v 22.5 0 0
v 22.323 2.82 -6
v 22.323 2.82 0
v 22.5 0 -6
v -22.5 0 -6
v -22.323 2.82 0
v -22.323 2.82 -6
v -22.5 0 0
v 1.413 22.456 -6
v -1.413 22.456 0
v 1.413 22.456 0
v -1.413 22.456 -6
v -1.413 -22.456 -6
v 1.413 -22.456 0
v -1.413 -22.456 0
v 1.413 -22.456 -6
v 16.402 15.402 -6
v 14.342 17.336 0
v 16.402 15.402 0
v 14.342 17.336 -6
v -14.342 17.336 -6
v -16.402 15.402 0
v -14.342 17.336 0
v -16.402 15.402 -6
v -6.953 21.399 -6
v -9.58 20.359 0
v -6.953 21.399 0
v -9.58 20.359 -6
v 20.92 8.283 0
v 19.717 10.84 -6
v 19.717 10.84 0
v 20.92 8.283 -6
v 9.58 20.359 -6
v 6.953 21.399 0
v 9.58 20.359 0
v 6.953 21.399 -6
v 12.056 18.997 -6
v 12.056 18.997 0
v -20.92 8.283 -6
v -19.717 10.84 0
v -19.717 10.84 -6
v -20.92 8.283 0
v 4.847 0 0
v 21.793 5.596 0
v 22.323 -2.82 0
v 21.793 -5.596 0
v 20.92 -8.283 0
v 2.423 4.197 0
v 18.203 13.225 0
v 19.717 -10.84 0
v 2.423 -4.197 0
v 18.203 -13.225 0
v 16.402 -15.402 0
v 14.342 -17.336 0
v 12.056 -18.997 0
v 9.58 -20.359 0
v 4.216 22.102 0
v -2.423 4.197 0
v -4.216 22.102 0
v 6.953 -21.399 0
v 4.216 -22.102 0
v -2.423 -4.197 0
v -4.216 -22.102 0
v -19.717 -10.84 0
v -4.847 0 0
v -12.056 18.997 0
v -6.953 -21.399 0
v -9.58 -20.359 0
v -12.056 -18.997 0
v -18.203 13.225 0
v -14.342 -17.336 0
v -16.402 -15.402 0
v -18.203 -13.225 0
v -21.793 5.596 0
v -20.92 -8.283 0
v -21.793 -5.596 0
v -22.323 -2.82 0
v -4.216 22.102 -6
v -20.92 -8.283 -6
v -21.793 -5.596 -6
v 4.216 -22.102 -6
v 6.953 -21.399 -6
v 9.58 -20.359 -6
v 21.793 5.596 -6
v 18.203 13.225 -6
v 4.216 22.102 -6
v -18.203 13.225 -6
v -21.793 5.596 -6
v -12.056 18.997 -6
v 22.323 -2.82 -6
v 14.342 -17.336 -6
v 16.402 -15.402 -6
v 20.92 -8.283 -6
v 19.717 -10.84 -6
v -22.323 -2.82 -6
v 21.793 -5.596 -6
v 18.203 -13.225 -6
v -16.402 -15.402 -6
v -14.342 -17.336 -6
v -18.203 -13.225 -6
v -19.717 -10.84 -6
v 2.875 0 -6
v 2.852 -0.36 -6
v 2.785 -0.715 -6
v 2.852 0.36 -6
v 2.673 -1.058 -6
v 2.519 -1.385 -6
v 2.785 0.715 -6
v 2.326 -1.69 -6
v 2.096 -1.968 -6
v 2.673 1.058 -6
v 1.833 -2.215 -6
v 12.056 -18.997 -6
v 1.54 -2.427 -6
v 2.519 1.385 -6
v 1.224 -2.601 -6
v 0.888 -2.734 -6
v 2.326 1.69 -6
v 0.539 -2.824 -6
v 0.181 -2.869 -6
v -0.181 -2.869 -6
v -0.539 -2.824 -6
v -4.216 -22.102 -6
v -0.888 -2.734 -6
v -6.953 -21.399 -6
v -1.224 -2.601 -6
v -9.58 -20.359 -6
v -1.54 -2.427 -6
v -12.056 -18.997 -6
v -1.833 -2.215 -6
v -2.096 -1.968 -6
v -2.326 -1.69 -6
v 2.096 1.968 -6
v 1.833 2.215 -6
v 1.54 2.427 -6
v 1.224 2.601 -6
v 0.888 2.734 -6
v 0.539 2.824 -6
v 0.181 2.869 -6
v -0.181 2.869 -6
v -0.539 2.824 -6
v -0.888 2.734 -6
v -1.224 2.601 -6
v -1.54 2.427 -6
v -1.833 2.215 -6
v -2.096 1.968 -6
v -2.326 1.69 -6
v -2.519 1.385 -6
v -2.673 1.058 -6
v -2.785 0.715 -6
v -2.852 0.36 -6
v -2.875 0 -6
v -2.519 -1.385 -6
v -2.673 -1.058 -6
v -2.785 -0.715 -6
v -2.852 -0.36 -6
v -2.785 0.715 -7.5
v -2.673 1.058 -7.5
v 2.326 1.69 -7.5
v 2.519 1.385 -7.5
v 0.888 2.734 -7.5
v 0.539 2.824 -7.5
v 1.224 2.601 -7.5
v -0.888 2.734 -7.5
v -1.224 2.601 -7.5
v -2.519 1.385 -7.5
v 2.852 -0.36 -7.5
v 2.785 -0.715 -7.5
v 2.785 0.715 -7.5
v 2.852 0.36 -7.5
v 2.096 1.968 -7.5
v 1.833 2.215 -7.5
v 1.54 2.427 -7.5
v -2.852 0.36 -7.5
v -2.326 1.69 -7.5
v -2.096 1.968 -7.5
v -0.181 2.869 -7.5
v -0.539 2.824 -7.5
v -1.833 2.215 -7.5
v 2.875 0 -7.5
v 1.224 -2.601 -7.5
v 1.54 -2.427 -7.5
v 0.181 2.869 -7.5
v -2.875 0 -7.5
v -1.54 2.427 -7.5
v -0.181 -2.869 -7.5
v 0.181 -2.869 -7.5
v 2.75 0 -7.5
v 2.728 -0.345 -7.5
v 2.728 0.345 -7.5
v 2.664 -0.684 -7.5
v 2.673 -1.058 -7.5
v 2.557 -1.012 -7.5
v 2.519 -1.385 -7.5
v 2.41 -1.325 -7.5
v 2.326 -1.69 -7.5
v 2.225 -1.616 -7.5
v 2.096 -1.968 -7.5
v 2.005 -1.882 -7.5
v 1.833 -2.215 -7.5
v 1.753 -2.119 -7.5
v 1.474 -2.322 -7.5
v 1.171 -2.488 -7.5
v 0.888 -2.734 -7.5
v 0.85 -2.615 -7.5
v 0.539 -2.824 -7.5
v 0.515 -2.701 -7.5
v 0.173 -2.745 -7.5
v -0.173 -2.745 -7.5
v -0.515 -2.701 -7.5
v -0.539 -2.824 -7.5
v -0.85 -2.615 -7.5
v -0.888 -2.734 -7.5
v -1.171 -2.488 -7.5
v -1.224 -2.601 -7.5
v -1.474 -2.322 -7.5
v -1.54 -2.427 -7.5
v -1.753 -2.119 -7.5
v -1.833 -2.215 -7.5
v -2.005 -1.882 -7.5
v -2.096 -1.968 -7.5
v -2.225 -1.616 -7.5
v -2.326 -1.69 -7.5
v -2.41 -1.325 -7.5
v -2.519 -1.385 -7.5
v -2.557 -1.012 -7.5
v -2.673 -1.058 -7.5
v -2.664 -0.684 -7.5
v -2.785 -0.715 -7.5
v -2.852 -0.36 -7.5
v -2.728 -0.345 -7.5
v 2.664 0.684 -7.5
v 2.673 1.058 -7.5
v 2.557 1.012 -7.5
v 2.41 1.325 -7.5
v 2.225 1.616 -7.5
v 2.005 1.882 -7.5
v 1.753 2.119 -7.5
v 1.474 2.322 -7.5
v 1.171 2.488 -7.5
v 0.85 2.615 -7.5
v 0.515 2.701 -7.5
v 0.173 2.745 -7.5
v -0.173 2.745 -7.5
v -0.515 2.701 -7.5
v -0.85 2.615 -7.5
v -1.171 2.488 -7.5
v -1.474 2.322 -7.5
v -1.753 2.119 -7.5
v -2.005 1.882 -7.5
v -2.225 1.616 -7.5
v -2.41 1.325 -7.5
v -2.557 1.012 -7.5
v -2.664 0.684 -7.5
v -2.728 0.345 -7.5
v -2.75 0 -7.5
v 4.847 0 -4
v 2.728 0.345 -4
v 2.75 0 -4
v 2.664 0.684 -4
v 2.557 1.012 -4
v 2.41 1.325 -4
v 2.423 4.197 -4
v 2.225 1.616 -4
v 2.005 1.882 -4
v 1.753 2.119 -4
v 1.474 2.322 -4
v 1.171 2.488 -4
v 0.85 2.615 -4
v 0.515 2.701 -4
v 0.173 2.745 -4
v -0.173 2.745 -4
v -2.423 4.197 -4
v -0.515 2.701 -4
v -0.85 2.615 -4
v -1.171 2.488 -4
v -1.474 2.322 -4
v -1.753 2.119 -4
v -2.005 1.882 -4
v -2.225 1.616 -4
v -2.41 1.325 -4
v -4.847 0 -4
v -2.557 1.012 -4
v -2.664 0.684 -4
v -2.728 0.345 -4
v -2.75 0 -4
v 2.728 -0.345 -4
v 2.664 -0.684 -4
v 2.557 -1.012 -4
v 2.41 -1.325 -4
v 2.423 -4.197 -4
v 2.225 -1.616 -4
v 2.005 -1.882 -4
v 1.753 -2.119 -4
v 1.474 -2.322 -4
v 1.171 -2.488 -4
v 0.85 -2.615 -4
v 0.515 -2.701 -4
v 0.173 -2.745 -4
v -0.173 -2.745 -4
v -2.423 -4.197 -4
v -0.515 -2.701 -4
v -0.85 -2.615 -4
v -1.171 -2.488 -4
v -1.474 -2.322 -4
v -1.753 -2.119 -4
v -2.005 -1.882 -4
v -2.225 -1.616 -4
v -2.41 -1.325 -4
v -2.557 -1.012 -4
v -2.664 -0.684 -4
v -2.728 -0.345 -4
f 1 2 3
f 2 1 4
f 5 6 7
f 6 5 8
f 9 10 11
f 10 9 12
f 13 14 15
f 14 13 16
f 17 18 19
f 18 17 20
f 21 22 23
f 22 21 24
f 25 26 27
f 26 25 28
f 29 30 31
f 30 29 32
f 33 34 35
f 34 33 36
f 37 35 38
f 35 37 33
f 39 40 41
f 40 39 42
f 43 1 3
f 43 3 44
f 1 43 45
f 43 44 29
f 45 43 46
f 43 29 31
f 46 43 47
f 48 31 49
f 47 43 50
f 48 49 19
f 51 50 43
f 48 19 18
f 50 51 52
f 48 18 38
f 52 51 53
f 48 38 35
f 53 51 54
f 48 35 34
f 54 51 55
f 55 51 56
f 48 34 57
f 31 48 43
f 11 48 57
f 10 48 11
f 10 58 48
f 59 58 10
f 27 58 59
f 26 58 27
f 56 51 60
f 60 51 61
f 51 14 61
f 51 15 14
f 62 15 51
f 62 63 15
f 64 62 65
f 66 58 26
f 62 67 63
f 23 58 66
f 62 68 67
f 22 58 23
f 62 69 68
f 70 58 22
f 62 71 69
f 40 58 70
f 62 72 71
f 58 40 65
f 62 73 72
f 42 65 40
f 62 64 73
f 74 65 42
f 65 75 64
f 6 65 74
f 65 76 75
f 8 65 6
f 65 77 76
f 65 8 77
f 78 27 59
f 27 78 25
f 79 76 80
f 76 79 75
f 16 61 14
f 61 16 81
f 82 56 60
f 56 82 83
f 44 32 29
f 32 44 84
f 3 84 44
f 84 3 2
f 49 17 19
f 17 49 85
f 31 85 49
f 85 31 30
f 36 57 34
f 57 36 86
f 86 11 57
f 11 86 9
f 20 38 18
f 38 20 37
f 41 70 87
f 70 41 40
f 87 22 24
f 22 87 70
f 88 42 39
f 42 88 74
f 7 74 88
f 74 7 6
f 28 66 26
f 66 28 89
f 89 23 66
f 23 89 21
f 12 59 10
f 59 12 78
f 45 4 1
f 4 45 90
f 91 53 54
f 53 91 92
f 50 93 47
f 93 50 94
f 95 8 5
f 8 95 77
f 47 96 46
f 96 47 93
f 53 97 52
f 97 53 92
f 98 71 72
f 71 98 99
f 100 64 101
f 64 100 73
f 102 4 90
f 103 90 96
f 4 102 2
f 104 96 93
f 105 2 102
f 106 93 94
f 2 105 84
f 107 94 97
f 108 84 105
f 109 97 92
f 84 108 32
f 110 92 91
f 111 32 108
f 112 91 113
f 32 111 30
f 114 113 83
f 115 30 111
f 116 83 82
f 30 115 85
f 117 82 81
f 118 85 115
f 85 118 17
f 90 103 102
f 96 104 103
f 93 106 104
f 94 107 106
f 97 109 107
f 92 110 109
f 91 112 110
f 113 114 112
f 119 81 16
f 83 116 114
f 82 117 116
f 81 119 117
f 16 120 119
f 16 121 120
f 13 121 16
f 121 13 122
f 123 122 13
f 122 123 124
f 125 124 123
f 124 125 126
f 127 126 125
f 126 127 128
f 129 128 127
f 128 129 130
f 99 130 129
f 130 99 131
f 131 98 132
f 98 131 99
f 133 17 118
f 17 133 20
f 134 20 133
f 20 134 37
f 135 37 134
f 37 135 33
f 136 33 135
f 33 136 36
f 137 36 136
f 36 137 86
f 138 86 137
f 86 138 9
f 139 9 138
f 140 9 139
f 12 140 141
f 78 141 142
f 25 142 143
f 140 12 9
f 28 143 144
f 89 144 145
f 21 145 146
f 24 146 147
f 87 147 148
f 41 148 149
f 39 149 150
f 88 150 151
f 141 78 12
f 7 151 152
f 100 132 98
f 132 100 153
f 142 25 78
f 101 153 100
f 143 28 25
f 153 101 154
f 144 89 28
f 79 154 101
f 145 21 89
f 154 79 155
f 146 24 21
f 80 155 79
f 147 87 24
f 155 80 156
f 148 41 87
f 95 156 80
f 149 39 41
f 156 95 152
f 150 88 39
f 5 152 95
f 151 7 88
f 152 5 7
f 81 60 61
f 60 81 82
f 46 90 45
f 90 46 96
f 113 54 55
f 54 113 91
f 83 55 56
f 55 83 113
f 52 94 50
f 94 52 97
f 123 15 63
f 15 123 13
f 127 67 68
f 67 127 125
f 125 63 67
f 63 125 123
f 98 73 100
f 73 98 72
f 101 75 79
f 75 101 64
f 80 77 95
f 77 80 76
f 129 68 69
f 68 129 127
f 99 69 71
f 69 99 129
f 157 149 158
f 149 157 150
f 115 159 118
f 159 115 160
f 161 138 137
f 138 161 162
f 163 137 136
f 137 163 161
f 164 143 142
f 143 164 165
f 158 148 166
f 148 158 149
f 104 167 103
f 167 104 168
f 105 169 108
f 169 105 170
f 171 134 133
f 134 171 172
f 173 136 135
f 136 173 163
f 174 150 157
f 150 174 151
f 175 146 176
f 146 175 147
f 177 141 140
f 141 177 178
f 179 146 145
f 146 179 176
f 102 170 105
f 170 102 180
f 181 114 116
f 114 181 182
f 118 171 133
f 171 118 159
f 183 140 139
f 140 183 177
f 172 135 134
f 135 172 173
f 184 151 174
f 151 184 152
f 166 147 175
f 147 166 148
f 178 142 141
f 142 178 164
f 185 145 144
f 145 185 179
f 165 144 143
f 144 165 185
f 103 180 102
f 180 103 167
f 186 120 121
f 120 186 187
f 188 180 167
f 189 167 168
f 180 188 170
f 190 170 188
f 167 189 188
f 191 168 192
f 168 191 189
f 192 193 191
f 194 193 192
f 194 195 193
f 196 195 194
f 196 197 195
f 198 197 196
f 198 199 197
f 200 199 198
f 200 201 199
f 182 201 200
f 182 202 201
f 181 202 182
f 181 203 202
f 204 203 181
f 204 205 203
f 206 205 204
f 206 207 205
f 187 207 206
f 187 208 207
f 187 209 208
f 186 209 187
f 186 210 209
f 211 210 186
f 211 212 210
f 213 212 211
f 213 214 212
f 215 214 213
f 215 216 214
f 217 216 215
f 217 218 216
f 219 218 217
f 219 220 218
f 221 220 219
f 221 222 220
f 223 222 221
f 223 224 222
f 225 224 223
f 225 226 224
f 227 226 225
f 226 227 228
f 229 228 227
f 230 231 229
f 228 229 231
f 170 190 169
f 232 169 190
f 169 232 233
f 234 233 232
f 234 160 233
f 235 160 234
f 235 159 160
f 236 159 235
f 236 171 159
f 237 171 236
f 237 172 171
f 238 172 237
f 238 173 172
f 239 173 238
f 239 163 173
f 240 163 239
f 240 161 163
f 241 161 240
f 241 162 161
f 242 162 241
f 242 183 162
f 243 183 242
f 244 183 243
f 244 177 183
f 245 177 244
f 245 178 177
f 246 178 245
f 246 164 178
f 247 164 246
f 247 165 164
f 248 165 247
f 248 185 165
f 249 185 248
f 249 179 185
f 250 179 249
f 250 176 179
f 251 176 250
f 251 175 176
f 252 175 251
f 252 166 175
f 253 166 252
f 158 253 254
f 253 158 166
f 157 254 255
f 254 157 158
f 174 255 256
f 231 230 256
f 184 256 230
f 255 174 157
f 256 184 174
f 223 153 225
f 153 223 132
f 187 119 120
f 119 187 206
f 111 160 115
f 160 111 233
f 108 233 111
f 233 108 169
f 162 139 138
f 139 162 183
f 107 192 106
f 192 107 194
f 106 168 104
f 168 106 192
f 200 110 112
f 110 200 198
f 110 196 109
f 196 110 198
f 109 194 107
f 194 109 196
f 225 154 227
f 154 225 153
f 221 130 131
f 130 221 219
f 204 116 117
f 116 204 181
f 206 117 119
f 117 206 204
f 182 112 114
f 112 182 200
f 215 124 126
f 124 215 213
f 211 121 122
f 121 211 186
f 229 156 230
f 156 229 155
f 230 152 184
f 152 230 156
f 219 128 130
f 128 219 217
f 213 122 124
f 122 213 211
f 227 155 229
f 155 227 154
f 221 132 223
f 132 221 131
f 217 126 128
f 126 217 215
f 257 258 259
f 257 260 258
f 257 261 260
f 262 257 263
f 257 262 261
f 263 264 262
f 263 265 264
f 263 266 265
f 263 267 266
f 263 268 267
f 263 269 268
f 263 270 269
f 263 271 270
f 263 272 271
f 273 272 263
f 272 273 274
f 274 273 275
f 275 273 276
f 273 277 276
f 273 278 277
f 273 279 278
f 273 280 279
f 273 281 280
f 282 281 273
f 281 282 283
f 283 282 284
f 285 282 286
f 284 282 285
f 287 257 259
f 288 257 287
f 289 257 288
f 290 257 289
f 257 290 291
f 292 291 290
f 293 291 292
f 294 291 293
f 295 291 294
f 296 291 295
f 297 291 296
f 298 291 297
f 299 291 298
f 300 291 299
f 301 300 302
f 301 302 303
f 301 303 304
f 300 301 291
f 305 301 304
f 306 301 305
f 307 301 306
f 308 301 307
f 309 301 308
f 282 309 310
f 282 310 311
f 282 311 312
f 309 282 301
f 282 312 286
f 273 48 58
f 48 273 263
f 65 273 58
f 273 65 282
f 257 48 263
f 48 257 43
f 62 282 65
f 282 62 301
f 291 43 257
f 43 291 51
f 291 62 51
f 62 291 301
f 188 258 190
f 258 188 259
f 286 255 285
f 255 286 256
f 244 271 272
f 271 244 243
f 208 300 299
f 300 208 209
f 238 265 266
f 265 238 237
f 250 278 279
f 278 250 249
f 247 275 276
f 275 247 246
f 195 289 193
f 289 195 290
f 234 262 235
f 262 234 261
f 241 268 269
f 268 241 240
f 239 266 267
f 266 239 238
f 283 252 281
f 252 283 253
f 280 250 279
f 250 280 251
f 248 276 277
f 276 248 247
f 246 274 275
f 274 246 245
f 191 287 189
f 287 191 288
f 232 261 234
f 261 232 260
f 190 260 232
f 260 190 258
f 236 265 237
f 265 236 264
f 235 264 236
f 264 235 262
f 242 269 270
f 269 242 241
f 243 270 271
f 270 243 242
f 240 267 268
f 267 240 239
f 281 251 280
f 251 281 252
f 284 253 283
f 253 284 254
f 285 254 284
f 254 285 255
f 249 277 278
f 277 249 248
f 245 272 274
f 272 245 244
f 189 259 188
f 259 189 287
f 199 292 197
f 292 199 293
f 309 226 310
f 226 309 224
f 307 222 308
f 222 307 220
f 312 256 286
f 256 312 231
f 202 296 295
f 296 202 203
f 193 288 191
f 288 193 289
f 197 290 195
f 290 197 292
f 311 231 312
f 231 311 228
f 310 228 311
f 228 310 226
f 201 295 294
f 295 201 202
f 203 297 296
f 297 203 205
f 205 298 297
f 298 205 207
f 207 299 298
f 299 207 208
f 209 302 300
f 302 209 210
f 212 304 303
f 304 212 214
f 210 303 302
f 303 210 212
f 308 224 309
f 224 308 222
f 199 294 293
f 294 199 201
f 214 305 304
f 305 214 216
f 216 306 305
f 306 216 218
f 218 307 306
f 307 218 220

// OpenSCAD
$fn = 50;


difference() {
	union() {
		translate(v = [0, 0, -6.0000000000]) {
			cylinder(h = 6.0000000000, r = 22.5000000000);
		}
		translate(v = [0, 0, -7.5000000000]) {
			cylinder(h = 7.5000000000, r = 2.8750000000);
		}
	}
	union() {
		translate(v = [0, 0, 0]) {
			rotate(a = [0, 0, 0]) {
				difference() {
					union() {
						translate(v = [0, 0, -4]) {
							linear_extrude(height = 4) {
								polygon(points = [[4.8468000000, 0.0000000000], [2.4234000000, 4.1974519271], [-2.4234000000, 4.1974519271], [-4.8468000000, 0.0000000000], [-2.4234000000, -4.1974519271], [2.4234000000, -4.1974519271]]);
							}
						}
					}
					union();
				}
			}
		}
		#translate(v = [0, 0, -100.0000000000]) {
			cylinder(h = 200, r = 2.7500000000);
		}
	}
}
